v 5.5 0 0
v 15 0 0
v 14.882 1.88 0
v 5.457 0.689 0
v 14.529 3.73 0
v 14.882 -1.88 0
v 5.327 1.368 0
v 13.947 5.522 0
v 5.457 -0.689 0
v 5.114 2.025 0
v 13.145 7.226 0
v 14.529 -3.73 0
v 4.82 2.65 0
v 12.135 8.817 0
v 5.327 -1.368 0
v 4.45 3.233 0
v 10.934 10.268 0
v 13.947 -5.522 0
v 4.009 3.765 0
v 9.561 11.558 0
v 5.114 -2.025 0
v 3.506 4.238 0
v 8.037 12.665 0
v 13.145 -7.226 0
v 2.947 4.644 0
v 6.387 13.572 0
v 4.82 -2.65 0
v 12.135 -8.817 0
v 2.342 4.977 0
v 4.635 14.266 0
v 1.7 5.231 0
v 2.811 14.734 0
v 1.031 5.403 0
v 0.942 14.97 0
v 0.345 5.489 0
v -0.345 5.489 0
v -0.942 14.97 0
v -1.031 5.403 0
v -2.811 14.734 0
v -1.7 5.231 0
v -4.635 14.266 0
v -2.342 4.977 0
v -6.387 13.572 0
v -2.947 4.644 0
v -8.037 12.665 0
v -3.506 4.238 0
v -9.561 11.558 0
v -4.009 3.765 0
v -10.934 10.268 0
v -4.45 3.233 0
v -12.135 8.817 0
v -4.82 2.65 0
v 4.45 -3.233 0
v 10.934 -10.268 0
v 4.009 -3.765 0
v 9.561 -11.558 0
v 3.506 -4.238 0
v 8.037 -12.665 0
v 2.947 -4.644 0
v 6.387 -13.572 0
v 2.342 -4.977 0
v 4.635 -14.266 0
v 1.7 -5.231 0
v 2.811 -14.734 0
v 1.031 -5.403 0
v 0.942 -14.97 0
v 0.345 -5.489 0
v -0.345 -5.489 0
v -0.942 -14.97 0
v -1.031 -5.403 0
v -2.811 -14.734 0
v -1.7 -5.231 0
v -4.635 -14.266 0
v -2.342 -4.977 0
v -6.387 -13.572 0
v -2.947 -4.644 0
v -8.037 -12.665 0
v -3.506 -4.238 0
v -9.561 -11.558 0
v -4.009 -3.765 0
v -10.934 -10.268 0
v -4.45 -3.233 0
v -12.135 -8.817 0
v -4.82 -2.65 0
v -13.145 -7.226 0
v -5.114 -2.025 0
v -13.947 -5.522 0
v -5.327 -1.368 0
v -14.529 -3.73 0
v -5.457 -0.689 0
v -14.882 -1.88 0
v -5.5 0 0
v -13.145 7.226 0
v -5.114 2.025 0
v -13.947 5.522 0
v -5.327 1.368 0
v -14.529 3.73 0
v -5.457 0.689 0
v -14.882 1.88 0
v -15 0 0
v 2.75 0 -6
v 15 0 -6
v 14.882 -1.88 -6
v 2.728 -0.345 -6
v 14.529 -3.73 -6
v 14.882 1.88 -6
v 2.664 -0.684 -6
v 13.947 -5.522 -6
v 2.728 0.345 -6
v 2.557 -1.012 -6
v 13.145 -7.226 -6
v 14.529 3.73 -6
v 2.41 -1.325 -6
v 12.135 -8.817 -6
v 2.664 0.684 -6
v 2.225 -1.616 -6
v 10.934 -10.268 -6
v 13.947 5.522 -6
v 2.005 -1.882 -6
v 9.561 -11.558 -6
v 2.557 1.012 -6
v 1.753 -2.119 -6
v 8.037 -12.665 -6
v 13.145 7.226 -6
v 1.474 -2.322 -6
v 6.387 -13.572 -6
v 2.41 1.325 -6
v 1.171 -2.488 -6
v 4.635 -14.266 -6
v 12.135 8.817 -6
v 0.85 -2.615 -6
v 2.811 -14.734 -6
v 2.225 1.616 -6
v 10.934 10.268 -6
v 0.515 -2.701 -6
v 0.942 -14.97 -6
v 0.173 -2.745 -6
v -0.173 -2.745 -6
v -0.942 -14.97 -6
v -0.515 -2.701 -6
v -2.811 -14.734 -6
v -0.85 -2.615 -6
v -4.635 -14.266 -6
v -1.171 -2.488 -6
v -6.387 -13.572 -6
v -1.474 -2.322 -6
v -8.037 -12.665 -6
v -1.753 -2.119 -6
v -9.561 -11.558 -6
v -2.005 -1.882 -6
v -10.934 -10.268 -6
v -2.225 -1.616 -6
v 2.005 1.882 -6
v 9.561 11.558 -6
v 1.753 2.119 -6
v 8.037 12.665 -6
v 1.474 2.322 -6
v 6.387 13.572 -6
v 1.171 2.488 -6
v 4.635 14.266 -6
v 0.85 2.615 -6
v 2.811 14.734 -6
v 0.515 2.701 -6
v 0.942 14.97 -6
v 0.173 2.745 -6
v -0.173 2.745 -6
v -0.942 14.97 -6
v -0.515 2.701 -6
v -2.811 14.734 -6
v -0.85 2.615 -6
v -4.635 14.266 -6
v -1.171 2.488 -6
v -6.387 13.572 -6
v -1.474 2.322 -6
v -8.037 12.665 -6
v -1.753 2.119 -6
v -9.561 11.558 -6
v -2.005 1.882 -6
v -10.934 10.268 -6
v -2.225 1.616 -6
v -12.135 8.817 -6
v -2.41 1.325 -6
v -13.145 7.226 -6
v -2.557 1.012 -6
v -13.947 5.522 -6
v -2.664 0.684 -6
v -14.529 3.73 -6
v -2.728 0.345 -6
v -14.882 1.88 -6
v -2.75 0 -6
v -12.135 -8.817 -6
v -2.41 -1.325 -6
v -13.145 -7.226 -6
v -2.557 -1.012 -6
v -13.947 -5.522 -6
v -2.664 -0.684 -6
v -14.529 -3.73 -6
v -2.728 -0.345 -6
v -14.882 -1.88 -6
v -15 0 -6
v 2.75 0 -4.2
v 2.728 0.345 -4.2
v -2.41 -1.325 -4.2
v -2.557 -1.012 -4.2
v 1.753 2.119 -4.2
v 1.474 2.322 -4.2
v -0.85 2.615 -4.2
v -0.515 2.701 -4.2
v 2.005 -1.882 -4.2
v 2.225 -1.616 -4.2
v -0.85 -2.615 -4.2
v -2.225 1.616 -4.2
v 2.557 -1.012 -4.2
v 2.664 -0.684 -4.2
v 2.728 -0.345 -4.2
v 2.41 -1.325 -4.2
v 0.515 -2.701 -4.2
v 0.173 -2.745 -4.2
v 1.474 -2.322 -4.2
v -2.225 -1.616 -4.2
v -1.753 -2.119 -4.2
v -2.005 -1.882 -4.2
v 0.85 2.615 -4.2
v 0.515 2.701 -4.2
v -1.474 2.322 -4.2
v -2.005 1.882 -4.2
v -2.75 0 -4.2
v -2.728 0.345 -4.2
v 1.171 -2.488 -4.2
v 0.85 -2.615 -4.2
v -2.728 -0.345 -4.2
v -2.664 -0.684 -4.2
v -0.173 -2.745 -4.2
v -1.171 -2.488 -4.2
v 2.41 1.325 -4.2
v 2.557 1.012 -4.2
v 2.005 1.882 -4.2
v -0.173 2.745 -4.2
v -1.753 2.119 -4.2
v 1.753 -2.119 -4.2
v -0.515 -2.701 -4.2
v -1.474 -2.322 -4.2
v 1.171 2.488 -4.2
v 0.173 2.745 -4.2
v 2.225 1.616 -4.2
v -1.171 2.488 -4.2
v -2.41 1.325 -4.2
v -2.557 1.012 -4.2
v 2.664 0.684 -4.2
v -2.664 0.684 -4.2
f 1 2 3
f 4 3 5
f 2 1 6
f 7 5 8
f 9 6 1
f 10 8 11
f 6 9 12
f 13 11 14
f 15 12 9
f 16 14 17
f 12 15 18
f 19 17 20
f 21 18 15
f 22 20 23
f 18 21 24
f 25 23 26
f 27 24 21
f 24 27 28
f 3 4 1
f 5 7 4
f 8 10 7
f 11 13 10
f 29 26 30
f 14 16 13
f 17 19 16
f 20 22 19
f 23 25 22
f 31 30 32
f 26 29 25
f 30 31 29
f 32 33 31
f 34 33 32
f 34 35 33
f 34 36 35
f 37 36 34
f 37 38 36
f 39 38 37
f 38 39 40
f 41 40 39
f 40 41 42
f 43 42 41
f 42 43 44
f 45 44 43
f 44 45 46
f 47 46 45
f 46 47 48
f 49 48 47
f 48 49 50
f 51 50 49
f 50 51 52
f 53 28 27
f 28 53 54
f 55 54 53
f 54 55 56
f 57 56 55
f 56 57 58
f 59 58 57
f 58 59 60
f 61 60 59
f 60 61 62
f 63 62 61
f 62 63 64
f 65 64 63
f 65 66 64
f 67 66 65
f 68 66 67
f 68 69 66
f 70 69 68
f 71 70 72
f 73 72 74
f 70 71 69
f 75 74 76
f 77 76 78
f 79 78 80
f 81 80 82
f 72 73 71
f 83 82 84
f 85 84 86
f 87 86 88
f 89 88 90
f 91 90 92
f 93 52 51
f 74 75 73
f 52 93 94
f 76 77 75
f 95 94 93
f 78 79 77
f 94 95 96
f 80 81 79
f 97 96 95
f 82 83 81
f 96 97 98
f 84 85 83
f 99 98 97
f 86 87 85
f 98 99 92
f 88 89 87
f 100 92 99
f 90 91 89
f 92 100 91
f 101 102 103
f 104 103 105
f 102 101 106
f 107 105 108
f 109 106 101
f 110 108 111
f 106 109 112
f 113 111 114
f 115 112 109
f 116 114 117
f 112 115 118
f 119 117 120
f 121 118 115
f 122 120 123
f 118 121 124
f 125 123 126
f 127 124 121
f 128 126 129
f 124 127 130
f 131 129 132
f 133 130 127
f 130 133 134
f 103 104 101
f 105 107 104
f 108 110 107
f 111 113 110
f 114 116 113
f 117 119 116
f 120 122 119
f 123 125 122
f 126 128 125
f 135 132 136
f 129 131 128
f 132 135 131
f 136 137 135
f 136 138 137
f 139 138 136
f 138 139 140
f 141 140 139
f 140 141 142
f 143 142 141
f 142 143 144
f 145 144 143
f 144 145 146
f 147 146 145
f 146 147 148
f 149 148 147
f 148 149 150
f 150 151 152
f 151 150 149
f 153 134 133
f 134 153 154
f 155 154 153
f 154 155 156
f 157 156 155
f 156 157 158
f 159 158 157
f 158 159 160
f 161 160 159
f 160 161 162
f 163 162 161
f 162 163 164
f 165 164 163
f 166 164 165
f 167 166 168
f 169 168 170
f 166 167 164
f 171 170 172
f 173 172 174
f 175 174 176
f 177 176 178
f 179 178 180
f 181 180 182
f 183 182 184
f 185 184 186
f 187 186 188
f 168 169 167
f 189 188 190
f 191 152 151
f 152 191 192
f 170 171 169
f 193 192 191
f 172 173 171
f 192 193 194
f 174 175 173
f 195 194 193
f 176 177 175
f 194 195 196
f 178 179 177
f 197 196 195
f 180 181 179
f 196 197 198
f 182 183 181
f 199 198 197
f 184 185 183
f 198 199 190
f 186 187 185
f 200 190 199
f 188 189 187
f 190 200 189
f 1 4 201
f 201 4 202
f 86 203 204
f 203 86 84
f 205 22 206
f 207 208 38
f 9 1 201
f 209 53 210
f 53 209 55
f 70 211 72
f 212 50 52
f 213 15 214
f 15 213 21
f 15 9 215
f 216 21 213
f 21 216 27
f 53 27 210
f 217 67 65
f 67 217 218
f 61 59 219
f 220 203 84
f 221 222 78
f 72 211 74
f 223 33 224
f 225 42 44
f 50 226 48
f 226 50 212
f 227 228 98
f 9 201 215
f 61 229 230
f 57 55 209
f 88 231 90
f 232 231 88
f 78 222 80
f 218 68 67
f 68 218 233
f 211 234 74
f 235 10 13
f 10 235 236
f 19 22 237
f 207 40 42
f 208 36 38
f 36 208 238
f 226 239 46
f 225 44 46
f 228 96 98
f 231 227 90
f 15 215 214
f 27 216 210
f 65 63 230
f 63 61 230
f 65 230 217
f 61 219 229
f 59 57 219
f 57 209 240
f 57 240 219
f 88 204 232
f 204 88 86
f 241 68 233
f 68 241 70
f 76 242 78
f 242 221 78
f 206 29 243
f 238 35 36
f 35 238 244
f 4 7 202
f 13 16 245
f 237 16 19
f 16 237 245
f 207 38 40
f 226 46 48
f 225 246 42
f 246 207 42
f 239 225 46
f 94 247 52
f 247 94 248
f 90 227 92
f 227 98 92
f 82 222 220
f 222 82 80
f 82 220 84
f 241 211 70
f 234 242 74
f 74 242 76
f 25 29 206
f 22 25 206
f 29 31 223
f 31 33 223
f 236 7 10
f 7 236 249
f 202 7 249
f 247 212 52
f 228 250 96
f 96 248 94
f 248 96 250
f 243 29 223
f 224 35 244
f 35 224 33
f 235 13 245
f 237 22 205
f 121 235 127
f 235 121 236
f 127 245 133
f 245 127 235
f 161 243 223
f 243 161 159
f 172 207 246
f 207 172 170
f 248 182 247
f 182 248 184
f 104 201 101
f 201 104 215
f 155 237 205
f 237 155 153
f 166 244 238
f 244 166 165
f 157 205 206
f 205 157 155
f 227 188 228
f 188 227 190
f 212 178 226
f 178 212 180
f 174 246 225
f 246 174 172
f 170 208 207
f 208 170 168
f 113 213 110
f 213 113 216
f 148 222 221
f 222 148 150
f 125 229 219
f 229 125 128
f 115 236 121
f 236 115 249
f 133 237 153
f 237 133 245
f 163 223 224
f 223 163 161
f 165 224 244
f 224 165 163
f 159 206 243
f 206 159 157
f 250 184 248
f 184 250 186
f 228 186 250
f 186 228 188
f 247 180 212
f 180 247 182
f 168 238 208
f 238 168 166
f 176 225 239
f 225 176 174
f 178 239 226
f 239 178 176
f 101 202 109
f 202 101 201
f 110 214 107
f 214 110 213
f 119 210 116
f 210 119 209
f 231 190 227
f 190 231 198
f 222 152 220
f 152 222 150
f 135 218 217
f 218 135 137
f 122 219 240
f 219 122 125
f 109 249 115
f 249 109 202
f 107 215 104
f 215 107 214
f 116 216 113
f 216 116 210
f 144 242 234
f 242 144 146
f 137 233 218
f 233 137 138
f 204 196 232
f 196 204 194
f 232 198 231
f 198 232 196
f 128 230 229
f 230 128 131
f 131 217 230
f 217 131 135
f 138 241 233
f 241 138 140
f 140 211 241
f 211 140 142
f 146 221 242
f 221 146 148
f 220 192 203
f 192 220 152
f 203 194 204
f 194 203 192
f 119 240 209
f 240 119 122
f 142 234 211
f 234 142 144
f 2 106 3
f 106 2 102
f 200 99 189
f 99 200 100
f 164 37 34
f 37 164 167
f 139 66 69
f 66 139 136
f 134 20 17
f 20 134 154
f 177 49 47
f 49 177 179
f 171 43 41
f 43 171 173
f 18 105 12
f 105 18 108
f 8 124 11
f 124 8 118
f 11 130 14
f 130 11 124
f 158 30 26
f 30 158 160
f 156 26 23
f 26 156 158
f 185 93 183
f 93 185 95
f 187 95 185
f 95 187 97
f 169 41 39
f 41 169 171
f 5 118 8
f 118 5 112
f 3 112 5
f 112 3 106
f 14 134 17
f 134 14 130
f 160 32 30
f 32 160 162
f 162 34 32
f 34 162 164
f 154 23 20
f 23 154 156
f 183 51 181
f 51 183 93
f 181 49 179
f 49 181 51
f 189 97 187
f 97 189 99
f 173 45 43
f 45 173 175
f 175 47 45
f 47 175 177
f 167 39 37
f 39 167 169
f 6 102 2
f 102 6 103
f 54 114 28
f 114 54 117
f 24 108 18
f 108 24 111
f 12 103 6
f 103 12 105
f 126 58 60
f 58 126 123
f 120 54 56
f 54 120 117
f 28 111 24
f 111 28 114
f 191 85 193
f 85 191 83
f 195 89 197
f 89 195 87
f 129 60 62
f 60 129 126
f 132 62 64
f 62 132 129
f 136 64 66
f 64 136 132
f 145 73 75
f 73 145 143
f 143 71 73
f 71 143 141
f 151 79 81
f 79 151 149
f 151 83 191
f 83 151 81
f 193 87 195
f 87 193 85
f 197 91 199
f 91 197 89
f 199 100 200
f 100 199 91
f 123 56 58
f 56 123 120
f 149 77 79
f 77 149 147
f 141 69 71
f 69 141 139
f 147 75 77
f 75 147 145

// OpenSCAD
$fn = 50;


difference() {
	union() {
		translate(v = [0, 0, -6.0000000000]) {
			cylinder(h = 6, r = 15.0000000000);
		}
	}
	union() {
		translate(v = [0, 0, 0]) {
			rotate(a = [0, 0, 0]) {
				difference() {
					union() {
						translate(v = [0, 0, -6.0000000000]) {
							cylinder(h = 6, r = 2.2500000000);
						}
						translate(v = [0, 0, -4.2000000000]) {
							cylinder(h = 4.2000000000, r1 = 2.7500000000, r2 = 5.5000000000);
						}
						translate(v = [0, 0, -6.0000000000]) {
							cylinder(h = 6, r = 2.7500000000);
						}
						translate(v = [0, 0, -6.0000000000]) {
							cylinder(h = 6, r = 2.2500000000);
						}
					}
					union();
				}
			}
		}
	}
}
